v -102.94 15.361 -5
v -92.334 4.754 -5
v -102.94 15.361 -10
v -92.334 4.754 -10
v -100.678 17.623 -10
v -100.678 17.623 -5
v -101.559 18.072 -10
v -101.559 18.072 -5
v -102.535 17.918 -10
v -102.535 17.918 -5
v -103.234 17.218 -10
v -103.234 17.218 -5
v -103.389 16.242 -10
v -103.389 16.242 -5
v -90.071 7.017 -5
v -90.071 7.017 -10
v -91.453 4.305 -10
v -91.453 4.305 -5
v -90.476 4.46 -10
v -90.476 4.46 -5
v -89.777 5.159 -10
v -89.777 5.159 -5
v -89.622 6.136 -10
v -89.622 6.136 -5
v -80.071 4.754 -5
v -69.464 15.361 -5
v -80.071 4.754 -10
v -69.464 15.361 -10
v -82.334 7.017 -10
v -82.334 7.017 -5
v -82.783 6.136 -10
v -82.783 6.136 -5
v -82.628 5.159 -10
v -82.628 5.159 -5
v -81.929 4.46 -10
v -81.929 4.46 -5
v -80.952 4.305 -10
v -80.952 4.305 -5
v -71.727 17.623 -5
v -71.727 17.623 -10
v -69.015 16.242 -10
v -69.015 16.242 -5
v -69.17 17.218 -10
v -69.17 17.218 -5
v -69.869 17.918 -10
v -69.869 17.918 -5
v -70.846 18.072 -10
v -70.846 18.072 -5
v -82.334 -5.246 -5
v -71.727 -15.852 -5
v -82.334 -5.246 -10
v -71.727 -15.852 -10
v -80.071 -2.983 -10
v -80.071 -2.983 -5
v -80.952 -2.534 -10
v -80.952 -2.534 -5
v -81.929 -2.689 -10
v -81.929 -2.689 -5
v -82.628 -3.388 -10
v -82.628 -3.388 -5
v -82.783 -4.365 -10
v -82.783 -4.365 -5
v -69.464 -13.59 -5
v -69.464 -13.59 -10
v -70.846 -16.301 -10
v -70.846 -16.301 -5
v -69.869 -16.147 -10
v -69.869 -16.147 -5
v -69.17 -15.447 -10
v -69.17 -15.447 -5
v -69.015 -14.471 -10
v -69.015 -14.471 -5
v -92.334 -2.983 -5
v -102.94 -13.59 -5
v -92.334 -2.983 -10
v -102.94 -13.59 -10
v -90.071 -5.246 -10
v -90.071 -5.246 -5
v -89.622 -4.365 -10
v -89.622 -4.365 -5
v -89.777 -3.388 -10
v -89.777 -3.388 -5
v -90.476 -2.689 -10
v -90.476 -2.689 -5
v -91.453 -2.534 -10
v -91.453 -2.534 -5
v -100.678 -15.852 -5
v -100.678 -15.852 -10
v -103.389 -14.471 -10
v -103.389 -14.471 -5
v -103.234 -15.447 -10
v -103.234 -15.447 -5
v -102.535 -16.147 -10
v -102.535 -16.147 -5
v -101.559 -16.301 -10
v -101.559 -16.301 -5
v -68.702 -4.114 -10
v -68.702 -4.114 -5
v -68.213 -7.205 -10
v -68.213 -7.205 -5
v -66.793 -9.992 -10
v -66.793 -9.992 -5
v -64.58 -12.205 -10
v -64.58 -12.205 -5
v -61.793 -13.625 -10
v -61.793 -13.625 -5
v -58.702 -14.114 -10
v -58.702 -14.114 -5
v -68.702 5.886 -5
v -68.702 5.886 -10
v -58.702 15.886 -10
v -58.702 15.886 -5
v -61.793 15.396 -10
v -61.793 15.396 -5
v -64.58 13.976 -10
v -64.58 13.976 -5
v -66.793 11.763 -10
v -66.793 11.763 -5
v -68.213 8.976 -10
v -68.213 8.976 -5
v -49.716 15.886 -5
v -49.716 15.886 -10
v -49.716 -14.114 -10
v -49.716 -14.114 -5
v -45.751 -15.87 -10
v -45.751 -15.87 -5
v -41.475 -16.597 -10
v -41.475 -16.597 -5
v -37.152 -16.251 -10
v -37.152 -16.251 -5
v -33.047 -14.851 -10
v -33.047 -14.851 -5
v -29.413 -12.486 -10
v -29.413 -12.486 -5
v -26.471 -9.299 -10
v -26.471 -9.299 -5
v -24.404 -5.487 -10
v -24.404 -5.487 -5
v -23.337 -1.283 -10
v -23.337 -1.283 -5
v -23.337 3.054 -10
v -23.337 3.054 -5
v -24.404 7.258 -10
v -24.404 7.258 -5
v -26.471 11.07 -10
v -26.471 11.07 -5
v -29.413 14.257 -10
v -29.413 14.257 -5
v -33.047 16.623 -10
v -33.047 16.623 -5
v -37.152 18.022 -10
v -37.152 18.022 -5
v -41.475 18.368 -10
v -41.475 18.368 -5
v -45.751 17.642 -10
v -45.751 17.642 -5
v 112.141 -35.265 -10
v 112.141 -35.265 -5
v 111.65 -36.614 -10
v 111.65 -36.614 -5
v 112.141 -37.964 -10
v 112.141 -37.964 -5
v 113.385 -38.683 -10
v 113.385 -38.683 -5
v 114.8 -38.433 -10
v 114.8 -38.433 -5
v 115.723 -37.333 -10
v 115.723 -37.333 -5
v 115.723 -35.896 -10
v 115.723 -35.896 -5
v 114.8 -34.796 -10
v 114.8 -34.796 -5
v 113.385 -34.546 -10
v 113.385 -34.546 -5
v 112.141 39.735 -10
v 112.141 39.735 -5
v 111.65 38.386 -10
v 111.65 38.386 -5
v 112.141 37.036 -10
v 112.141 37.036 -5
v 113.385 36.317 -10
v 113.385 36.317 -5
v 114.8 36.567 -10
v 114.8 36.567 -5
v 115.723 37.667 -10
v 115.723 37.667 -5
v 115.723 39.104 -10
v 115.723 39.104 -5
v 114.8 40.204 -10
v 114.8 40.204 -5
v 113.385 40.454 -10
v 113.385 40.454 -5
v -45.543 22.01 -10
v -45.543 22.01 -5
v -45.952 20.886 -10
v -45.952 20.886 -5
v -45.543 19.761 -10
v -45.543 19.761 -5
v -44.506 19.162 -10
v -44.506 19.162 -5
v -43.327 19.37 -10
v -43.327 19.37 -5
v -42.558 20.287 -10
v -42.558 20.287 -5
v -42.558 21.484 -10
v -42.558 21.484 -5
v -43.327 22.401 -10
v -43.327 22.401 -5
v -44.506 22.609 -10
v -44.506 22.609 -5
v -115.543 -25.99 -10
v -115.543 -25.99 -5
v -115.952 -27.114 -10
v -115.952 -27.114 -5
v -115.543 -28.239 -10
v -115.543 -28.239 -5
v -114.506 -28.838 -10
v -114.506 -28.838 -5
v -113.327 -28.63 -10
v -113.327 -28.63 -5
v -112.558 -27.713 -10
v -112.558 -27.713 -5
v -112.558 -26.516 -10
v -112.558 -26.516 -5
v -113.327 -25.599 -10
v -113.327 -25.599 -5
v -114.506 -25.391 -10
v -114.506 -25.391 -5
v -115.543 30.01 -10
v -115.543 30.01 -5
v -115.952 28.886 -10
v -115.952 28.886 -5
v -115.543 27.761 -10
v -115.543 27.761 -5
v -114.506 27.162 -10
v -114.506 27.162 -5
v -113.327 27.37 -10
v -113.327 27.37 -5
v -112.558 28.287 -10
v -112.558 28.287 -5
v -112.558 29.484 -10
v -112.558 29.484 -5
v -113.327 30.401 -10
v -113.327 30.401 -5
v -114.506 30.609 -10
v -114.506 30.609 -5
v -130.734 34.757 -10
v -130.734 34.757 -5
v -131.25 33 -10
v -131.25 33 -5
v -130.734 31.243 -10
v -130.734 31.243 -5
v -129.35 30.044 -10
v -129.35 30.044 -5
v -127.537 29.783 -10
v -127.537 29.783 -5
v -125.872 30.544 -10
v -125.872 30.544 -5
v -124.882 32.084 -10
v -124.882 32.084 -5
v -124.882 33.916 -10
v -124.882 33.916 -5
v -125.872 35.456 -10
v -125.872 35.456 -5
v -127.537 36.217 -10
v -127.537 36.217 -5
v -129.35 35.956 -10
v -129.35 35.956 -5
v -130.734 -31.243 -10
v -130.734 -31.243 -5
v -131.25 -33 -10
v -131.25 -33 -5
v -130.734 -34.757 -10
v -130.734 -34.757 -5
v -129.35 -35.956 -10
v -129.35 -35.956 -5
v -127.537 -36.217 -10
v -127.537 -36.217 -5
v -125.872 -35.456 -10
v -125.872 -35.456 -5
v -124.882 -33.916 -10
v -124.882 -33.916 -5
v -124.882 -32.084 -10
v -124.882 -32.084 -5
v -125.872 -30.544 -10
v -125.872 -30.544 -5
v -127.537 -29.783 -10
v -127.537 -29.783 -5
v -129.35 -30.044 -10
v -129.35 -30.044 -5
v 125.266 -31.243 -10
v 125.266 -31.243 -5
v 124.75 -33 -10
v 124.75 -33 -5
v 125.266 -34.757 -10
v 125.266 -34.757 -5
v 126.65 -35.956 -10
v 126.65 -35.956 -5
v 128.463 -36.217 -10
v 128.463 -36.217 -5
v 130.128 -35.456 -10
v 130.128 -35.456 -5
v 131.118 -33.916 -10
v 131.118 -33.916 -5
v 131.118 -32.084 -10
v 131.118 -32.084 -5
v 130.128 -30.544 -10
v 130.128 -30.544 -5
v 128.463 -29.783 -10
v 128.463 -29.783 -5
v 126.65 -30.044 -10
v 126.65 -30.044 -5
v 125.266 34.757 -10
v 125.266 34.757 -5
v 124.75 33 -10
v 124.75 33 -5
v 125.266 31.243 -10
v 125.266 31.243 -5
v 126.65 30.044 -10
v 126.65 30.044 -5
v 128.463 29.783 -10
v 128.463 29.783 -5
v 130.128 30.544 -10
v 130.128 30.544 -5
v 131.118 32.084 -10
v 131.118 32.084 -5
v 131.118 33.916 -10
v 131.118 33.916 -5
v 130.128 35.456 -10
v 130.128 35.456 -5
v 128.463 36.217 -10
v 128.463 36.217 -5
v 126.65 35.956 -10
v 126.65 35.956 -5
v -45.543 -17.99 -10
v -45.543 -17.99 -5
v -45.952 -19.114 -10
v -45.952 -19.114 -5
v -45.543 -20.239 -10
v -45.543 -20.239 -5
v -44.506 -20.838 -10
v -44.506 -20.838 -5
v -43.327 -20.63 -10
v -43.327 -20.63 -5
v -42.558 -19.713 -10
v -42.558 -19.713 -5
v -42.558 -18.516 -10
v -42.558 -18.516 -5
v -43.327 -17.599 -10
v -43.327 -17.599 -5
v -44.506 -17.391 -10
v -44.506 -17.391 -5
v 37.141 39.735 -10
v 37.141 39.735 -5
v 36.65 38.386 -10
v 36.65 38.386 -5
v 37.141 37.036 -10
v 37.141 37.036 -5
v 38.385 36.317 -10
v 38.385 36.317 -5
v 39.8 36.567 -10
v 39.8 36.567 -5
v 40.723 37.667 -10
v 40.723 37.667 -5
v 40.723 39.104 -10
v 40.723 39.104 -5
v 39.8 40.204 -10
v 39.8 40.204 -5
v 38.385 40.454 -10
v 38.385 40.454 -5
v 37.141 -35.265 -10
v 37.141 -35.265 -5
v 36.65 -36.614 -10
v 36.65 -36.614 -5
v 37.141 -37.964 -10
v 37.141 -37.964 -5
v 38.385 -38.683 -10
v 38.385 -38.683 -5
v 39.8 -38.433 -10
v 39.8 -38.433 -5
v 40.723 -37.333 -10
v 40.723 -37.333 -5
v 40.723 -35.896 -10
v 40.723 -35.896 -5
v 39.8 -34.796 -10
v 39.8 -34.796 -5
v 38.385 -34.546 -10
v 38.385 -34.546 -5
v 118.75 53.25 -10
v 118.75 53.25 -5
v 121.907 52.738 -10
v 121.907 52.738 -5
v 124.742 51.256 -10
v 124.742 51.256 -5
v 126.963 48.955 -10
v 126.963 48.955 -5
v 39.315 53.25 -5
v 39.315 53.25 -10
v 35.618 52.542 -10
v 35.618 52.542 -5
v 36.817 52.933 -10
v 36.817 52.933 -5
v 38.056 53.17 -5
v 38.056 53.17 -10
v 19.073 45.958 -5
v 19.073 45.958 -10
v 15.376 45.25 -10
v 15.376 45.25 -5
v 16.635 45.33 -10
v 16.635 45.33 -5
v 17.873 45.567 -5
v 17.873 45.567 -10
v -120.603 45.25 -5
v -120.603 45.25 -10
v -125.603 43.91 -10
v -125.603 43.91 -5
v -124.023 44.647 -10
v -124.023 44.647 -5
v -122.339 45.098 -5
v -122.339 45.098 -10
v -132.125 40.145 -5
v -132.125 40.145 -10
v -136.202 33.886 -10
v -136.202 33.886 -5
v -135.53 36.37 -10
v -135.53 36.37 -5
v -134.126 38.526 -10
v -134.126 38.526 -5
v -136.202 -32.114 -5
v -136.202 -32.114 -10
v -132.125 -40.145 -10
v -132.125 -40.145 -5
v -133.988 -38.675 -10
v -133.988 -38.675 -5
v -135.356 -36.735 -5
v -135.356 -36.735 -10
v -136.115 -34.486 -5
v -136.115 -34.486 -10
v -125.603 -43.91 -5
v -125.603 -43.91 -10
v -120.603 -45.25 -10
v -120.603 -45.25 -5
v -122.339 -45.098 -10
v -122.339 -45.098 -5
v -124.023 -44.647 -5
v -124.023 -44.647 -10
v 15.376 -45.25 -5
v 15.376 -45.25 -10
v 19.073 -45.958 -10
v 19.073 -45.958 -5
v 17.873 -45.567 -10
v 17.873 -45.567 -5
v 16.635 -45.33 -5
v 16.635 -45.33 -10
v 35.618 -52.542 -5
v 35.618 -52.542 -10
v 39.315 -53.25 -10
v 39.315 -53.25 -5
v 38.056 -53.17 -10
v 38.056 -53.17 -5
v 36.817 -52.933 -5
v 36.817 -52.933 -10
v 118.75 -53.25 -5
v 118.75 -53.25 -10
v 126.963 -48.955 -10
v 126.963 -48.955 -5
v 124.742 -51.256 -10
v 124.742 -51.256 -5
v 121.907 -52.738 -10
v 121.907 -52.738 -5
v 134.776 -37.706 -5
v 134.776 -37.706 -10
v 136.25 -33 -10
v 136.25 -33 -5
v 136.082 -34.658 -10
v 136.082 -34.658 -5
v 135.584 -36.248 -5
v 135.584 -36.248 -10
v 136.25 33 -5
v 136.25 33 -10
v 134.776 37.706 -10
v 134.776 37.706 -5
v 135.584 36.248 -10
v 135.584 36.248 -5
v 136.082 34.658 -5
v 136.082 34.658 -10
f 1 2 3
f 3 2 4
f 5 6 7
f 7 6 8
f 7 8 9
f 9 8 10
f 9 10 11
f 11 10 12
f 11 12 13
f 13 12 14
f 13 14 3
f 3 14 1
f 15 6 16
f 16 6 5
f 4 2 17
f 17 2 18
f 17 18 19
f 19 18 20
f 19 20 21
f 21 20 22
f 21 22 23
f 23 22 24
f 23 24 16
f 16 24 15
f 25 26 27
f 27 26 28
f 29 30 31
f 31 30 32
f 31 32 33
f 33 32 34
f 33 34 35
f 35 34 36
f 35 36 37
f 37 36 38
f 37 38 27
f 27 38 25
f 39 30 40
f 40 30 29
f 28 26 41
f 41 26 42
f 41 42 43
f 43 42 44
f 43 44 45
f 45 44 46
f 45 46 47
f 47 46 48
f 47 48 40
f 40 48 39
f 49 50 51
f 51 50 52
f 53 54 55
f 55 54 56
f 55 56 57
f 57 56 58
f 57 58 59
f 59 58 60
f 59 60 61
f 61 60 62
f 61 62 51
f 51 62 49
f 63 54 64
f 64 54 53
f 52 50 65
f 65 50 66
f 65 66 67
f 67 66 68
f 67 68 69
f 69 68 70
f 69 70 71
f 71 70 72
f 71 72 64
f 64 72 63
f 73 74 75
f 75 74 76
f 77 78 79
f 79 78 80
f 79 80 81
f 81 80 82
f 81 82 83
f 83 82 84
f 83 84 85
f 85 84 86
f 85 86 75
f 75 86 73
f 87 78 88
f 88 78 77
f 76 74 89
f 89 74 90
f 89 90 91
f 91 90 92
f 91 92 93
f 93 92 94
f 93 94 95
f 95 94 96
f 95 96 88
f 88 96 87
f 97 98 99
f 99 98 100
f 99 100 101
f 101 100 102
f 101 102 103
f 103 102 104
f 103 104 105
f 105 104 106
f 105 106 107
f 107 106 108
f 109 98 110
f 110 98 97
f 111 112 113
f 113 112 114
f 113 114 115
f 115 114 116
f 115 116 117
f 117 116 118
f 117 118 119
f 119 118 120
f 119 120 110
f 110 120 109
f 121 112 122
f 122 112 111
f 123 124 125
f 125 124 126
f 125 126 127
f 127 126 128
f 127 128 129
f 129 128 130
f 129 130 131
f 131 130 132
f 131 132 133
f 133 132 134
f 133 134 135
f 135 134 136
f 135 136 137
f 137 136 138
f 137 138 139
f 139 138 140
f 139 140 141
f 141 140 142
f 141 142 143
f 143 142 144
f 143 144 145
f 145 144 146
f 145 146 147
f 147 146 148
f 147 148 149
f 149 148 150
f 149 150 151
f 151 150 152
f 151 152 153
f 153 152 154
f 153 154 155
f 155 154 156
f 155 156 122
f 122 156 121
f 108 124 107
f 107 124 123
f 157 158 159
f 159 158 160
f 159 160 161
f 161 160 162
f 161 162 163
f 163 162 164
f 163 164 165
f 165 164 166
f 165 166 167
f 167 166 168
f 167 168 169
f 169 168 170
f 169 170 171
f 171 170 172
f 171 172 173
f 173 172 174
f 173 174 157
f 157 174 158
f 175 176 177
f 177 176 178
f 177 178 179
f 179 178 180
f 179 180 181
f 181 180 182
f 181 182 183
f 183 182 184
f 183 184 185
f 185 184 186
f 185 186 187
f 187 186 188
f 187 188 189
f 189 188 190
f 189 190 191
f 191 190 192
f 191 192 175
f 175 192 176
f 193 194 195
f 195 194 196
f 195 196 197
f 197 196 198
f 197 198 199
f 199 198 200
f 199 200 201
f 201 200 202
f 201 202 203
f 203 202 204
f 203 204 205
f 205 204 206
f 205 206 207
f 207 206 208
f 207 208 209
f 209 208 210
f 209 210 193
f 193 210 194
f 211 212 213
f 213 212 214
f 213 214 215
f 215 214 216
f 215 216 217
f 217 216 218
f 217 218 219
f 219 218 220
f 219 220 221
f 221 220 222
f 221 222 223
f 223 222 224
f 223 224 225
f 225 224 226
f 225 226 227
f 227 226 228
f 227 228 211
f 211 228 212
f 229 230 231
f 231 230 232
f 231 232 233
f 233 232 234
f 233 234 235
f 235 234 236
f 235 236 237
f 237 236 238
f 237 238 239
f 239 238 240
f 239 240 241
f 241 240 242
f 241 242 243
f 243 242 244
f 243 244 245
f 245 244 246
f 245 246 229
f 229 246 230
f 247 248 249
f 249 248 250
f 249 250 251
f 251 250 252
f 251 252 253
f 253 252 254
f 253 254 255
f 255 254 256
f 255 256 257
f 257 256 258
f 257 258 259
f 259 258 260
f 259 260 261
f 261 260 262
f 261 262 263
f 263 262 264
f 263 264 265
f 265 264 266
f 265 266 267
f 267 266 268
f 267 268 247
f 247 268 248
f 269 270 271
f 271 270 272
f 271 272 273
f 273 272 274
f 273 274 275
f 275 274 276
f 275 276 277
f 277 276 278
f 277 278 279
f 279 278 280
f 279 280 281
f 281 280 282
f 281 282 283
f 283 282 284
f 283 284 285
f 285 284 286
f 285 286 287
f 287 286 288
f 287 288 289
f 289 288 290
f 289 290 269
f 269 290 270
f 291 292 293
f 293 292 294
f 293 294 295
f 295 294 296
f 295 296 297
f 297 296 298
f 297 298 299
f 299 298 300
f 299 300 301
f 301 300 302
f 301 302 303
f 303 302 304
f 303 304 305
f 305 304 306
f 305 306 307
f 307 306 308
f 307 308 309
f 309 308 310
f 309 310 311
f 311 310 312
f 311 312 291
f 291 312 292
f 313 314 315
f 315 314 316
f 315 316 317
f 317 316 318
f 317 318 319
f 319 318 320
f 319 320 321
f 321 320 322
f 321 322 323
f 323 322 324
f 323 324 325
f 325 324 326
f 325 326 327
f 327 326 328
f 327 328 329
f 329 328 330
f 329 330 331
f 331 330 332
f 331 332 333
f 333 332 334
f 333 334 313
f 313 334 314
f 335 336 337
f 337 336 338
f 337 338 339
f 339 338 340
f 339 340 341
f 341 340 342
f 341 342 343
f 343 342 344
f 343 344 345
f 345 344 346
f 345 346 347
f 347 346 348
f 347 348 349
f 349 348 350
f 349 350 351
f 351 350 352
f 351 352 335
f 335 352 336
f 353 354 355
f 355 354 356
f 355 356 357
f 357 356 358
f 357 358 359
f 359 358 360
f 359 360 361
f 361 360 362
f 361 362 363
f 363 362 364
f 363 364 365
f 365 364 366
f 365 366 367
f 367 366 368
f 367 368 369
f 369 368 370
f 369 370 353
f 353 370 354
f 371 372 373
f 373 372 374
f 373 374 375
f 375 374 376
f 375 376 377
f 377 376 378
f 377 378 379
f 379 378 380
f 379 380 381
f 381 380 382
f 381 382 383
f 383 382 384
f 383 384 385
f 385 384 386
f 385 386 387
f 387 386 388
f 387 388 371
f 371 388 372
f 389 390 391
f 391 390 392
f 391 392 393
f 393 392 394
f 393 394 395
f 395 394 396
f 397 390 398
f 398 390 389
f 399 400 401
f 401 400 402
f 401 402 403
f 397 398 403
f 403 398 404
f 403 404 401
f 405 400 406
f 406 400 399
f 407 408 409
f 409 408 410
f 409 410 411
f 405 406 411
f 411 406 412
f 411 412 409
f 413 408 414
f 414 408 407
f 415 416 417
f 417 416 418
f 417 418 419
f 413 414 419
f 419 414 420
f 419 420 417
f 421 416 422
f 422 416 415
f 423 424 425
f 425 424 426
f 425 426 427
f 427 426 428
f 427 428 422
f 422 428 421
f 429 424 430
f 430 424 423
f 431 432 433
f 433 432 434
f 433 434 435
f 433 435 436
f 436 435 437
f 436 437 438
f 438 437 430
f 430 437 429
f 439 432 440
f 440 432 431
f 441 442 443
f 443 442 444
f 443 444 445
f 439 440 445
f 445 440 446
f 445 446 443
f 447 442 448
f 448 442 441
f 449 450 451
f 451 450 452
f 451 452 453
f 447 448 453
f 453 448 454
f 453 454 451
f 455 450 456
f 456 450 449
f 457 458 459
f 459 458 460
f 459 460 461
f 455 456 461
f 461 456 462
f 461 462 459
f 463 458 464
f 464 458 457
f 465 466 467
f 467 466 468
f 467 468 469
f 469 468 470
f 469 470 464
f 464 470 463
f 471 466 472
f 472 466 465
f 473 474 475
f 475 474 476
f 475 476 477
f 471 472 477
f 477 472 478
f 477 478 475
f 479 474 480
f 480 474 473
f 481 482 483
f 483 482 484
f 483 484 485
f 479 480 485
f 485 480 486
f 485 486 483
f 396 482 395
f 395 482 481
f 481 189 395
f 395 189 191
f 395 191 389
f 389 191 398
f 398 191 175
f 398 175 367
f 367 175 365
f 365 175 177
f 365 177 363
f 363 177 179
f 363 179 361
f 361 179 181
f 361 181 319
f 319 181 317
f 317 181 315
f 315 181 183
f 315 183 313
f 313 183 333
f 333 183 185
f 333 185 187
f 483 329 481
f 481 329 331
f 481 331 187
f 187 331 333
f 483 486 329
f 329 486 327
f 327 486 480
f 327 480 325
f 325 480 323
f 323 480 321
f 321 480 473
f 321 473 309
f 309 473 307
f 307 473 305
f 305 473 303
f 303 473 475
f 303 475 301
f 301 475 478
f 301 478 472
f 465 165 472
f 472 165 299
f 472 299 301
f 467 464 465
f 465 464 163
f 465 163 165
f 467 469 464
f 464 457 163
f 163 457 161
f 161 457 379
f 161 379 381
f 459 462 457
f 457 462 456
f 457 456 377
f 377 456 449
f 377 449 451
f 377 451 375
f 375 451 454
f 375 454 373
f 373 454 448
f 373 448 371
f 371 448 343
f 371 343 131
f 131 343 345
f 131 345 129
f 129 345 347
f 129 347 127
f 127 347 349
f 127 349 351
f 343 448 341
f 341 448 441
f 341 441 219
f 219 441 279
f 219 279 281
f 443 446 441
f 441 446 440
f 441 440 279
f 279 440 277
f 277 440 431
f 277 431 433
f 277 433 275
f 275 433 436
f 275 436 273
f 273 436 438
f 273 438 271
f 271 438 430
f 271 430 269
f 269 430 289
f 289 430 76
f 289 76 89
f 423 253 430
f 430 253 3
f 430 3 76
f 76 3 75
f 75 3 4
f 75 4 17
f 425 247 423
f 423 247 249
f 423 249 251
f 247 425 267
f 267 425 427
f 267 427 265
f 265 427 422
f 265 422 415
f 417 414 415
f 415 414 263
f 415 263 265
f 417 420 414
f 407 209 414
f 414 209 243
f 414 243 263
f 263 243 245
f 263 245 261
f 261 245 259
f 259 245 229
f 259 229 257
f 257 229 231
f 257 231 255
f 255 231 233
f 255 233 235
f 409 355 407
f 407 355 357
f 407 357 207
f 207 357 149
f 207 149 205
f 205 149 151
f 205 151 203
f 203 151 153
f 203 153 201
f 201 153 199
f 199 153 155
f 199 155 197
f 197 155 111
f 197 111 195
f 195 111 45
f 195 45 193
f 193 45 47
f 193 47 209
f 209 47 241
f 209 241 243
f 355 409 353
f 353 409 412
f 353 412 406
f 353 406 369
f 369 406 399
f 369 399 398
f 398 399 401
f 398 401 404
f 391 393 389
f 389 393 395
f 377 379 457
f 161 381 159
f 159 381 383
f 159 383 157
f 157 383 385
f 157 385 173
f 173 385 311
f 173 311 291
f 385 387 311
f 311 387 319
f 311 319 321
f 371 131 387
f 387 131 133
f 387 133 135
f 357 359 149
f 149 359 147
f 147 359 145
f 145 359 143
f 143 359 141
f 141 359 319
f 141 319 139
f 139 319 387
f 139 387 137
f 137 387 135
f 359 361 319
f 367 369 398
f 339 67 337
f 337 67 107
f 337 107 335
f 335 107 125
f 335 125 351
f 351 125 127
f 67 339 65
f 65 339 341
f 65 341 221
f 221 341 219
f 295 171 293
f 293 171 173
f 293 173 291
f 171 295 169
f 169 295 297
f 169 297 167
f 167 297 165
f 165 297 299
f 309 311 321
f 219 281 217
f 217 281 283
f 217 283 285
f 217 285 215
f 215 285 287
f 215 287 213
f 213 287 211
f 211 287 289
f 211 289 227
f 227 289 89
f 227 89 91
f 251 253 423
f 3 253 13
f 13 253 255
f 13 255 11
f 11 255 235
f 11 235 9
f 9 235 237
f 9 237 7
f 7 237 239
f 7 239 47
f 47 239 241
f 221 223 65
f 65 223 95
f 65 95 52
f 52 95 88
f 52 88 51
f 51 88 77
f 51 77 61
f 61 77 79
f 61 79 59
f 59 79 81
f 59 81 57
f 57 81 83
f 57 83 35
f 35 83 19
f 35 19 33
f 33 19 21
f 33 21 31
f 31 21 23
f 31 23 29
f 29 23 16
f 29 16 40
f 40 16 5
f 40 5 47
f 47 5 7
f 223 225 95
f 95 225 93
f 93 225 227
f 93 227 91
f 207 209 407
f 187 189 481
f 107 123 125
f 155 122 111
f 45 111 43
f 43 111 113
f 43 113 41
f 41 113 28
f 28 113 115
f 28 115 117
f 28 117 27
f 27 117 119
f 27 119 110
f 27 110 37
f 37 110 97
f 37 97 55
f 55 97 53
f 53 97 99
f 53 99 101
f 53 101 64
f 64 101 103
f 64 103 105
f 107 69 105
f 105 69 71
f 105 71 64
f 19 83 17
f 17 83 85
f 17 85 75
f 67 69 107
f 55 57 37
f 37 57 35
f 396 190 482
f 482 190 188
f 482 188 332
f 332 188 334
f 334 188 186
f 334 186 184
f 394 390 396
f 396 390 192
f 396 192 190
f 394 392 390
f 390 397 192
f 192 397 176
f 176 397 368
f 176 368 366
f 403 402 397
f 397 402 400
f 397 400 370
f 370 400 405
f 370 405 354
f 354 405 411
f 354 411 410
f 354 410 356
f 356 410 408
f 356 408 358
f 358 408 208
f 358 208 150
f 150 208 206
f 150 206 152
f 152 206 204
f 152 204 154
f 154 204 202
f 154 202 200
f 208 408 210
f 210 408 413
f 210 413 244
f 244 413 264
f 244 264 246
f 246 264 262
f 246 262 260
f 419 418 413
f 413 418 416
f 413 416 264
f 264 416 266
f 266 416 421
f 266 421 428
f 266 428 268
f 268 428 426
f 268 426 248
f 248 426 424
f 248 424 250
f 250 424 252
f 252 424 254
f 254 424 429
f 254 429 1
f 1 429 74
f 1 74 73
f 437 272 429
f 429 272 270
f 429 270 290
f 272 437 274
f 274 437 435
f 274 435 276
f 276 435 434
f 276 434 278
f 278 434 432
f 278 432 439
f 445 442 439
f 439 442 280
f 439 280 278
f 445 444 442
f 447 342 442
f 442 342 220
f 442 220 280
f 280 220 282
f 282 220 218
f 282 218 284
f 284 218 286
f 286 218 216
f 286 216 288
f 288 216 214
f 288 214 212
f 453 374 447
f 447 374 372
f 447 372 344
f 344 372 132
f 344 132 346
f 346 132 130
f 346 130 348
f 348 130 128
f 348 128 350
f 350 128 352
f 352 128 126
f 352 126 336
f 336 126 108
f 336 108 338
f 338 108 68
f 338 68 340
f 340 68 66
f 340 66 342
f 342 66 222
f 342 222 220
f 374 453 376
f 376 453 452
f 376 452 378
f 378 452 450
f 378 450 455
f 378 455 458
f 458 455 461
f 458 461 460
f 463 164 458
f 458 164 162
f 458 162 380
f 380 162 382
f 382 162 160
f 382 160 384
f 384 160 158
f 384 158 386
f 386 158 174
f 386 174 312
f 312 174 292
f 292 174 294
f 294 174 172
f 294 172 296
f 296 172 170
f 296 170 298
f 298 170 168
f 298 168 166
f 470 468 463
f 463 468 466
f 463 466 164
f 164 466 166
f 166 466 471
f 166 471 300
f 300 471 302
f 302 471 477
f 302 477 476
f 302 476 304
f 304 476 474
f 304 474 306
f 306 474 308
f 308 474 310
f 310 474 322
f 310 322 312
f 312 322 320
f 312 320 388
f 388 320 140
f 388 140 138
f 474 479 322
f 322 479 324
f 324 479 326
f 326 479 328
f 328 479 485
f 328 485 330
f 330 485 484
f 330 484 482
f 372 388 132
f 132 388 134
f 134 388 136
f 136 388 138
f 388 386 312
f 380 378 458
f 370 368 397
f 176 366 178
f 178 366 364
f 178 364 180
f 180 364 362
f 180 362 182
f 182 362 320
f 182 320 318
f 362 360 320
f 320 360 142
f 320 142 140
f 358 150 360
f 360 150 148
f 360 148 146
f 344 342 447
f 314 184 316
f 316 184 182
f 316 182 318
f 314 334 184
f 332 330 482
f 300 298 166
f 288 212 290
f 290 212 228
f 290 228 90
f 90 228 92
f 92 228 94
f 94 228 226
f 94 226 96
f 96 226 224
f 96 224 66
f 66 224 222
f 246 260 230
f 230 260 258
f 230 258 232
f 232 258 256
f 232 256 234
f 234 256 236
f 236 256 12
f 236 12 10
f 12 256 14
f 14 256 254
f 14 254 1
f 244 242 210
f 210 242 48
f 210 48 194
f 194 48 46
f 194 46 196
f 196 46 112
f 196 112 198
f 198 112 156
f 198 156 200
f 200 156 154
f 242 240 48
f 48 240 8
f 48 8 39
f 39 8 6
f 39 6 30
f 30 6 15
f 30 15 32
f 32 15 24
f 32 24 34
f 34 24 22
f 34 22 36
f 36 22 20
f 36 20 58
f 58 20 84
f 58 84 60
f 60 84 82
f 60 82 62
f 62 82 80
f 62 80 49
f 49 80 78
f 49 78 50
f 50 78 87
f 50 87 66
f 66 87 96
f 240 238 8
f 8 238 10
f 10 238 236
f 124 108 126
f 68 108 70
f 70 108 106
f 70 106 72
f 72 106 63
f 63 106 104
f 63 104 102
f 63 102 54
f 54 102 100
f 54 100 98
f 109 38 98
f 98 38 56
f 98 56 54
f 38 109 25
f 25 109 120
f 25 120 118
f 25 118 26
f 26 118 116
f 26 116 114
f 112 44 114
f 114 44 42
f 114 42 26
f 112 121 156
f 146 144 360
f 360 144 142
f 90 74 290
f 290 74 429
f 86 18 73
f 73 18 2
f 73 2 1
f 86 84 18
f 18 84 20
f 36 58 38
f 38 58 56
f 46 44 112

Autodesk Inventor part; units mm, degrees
ref_plane "YZ Plane" through (0, 0, 0) normal (1, 0, 0) x (0, 1, 0)
ref_plane "XZ Plane" through (0, 0, 0) normal (0, 1, 0) x (-1, 0, 0)
ref_plane "XY Plane" through (0, 0, 0) normal (0, 0, 1) x (1, 0, 0)
ref_plane "作業平面1" through (15.3757, 45.25, -5) normal (0, 0, -1) x (-1, 0, 0)
sketch "Base_plate" plane through (15.3757, 45.25, -5) normal (0, 0, -1) x (-1, 0, 0)
  circle A0 centre (-112.6243, -12.25) radius 3.25
  circle A1 centre (-112.6243, -78.25) radius 3.25
  circle A2 centre (143.3757, -78.25) radius 3.25
  circle A3 centre (143.3757, -12.25) radius 3.25
  line L0 (151.578, -11.3644) -> (151.578, -77.3644)
  arc A4 (151.578, -11.3644) -> (147.5007, -5.1053) centre (143.3757, -12.25) ccw
  line L1 (147.5007, -5.1053) -> (140.9785, -1.3397)
  arc A5 (140.9785, -1.3397) -> (135.9785, 0) centre (135.9785, -10) ccw
  line L2 (135.9785, 0) -> (0, 0)
  line L3 (-20.2421, 7.2915) -> (-3.697, 0.7085)
  line L4 (-23.9391, 8) -> (-103.3743, 8)
  line L5 (0, 0) -> (135.9785, 0)
  arc A6 (140.9785, -1.3397) -> (135.9785, 0) centre (135.9785, -10) ccw
  line L6 (140.9785, -1.3397) -> (147.5007, -5.1053)
  arc A7 (151.578, -11.3644) -> (147.5007, -5.1053) centre (143.3757, -12.25) ccw
  line L7 (151.578, -11.3644) -> (151.578, -77.3644)
  arc A8 (147.5007, -85.3947) -> (151.578, -77.3644) centre (143.3757, -78.25) ccw
  arc A9 (-103.3743, 8) -> (-111.5876, 3.7046) centre (-103.3743, -2) ccw
  line L8 (-103.3743, 8) -> (-23.9391, 8)
  arc A10 (-20.2421, 7.2915) -> (-23.9391, 8) centre (-23.9391, -2) ccw
  line L9 (-20.2421, 7.2915) -> (-3.697, 0.7085)
  arc A11 (-3.697, 0.7085) -> (0, 0) centre (0, 10) ccw
  circle A12 centre (-112.6243, -12.25) radius 3.25
  circle A13 centre (143.3757, -12.25) radius 3.25
  circle A14 centre (143.3757, -78.25) radius 3.25
  circle A15 centre (-112.6243, -78.25) radius 3.25
  line L10 (135.9785, 0) -> (0, 0)
  arc A16 (140.9785, -1.3397) -> (135.9785, 0) centre (135.9785, -10) ccw
  line L11 (147.5007, -5.1053) -> (140.9785, -1.3397)
  arc A17 (151.578, -11.3644) -> (147.5007, -5.1053) centre (143.3757, -12.25) ccw
  line L12 (151.6257, -11.3644) -> (151.6257, -77.3644)
  arc A18 (147.5007, -85.3947) -> (151.578, -77.3644) centre (143.3757, -78.25) ccw
  line L13 (147.5007, -85.3947) -> (140.9785, -89.1603)
  arc A19 (135.9785, -90.5) -> (140.9785, -89.1603) centre (135.9785, -80.5) ccw
  line L14 (135.9785, -90.5) -> (0, -90.5)
  arc A20 (0, -90.5) -> (-3.697, -91.2085) centre (0, -100.5) ccw
  line L15 (-20.2421, -97.7915) -> (-3.697, -91.2085)
  arc A21 (-23.9391, -98.5) -> (-20.2421, -97.7915) centre (-23.9391, -88.5) ccw
  line L16 (-23.9391, -98.5) -> (-103.3743, -98.5)
  arc A22 (-111.5876, -94.2046) -> (-103.3743, -98.5) centre (-103.3743, -88.5) ccw
  line L17 (-111.5876, -94.2046) -> (-119.4003, -82.9563)
  arc A23 (-120.8743, -78.25) -> (-119.4003, -82.9563) centre (-112.6243, -78.25) ccw
  line L18 (-120.8743, -12.25) -> (-120.8743, -78.25)
  arc A24 (-119.4003, -7.5437) -> (-120.8743, -12.25) centre (-112.6243, -12.25) ccw
  line L19 (-111.5876, 3.7046) -> (-119.4003, -7.5437)
  line L20 (-23.9391, 8) -> (-103.3743, 8)
  arc A25 (-20.2421, 7.2915) -> (-23.9391, 8) centre (-23.9391, -2) ccw
  line L21 (-20.2421, 7.2915) -> (-3.697, 0.7085)
  arc A26 (-3.697, 0.7085) -> (0, 0) centre (0, 10) ccw
  line L22 (101.578, 7.8213) -> (101.578, -100.5) construction
  line L23 (151.6257, -44.3644) -> (-114.4175, -44.3644) construction
  circle A27 centre (56.078, -44.3644) radius 17.5 construction
  line L24 (129.578, -5.1053) -> (129.578, -82.9563) construction
  circle A28 centre (129.578, -16.3644) radius 1.75
  circle A29 centre (129.578, -72.3644) radius 1.75
  line L25 (59.578, -19.3302) -> (59.578, -75) construction
  circle A30 centre (59.578, -24.3644) radius 1.75
  circle A31 centre (59.578, -64.3644) radius 1.75
  circle A32 centre (101.578, -44.3644) radius 14.75 construction
  line L26 (101.578, -44.3644) -> (118.6401, -27.3023) construction
  line L27 (101.578, -44.3644) -> (125.7075, -44.3644) construction
  line L28 (106.5779, -39.3645) -> (117.1845, -28.7579) construction
  line L29 (107.7093, -40.4959) -> (118.3159, -29.8893)
  line L30 (116.0532, -27.6265) -> (105.4466, -38.2331)
  arc A33 (105.4466, -38.2331) -> (107.7093, -40.4959) centre (106.5779, -39.3645) ccw
  arc A34 (118.3159, -29.8893) -> (116.0532, -27.6265) centre (117.1845, -28.7579) ccw
  line L31 (84.8401, -29.8893) -> (95.4467, -40.4959)
  arc A35 (87.1028, -27.6265) -> (84.8401, -29.8893) centre (85.9714, -28.7579) ccw
  line L32 (97.7094, -38.2331) -> (87.1028, -27.6265)
  arc A36 (95.4467, -40.4959) -> (97.7094, -38.2331) centre (96.578, -39.3645) ccw
  line L33 (87.1028, -61.1024) -> (97.7094, -50.4958)
  arc A37 (84.8401, -58.8396) -> (87.1028, -61.1024) centre (85.9714, -59.971) ccw
  line L34 (95.4467, -48.233) -> (84.8401, -58.8396)
  arc A38 (97.7094, -50.4958) -> (95.4467, -48.233) centre (96.578, -49.3644) ccw
  line L35 (118.3159, -58.8396) -> (107.7093, -48.233)
  arc A39 (116.0532, -61.1024) -> (118.3159, -58.8396) centre (117.1845, -59.971) ccw
  line L36 (105.4466, -50.4958) -> (116.0532, -61.1024)
  arc A40 (107.7093, -48.233) -> (105.4466, -50.4958) centre (106.5779, -49.3644) ccw
  line L37 (65.0919, -29.3644) -> (74.078, -29.3644)
  line L38 (84.078, -39.3644) -> (84.078, -49.3644)
  line L39 (74.078, -59.3644) -> (65.0919, -59.3644)
  line L40 (65.0919, -59.3644) -> (65.0919, -29.3644) construction
  arc A41 (84.078, -39.3644) -> (74.078, -29.3644) centre (74.078, -39.3644) ccw
  arc A42 (74.078, -59.3644) -> (84.078, -49.3644) centre (74.078, -49.3644) ccw
  arc A43 (65.0919, -29.3644) -> (65.0919, -59.3644) centre (56.078, -44.3644) ccw
  line L41 (-60.8743, -12.5765) -> (-60.8743, -79.1684) construction
  line L42 (-98.3743, -6.8644) -> (-23.3743, -6.8644) construction
  line L43 (-23.3743, -6.8644) -> (-23.3743, -81.8644) construction
  line L44 (-23.3743, -81.8644) -> (-98.3743, -81.8644) construction
  line L45 (-98.3743, -81.8644) -> (-98.3743, -6.8644) construction
  line L46 (-98.3743, -6.8644) -> (-23.3743, -81.8644) construction
  line L47 (-23.3743, -6.8644) -> (-98.3743, -81.8644) construction
  circle A44 centre (-98.3743, -6.8644) radius 2.1
  circle A45 centre (-23.3743, -6.8644) radius 2.1
  circle A46 centre (-98.3743, -81.8644) radius 2.1
  circle A47 centre (-23.3743, -81.8644) radius 2.1
  point P0 (144.2396, -3.2225)
  point P1 (144.2396, -87.2775)
  point P2 (111.8812, -34.0612)
  point P3 (91.2747, -34.0612)
  point P4 (91.2747, -54.6677)
  point P5 (111.8812, -54.6677)
  point P6 (-60.8743, -44.3644)
  point P7 (-60.8743, -44.3644)
  dimension "d20" = 50
  dimension "d21" = 45.5
  dimension "d22" = 35
  dimension "d23" = 28
  dimension "d24" = 3.5
  dimension "d25" = 3.5
  dimension "d26" = 28
  dimension "d27" = 28
  dimension "d28" = 42
  dimension "d29" = 3.5
  dimension "d30" = 3.5
  dimension "d31" = 20
  dimension "d32" = 20
  dimension "d40" = 29.5
  dimension "d43" = 45
  dimension "d44" = 3.2
  dimension "d45" = 7.071
  dimension "d46" = 15
  dimension "d49" = 360
  dimension "d51" = 15
  dimension "d52" = 15
  dimension "d53" = 28
  dimension "d54" = 10
  dimension "d65" = 60
  dimension "d66" = 75
  dimension "d67" = 75
  dimension "d68" = 4.2
  dimension "d69" = 4.2
  dimension "d70" = 4.2
  dimension "d71" = 4.2
sketch "RPLidarA1M8" plane through (15.3757, 45.25, -5) normal (0, 0, -1) x (-1, 0, 0)
  line L0 (59.578, -45.9195) -> (59.578, -117.33) construction
  circle A0 centre (59.578, -24.3644) radius 1.5
  circle A1 centre (59.578, -64.3644) radius 1.5
  line L1 (4.0197, -44.3644) -> (199.1363, -44.3644) construction
  circle A2 centre (129.578, -16.3644) radius 1.5
  line L2 (101.578, -2.732) -> (101.578, -85.9969) construction
  circle A3 centre (101.578, -44.3644) radius 35.14
  line L3 (59.578, -6.852) -> (59.578, -81.8768) construction
  circle A4 centre (129.578, -72.3644) radius 1.5
  line L4 (129.578, -10.2254) -> (129.578, -77.75) construction
  circle A5 centre (56.078, -44.3644) radius 10
  circle A6 centre (56.078, -44.3644) radius 16
  line L5 (151.6257, -44.3644) -> (-114.4175, -44.3644) construction
  line L6 (101.578, 7.8213) -> (101.578, -100.5) construction
  point P0 (15.3757, -88.1377)
  point P1 (59.578, -44.3644)
  point P2 (129.578, -43.9877)
  dimension "d1" = 3
  dimension "d2" = 3
  dimension "d5" = 20
  dimension "d6" = 3
  dimension "d10" = 70.28
  dimension "d11" = 42
  dimension "d12" = 40
  dimension "d13" = 3
  dimension "d14" = 28
  dimension "d15" = 28
  dimension "d16" = 28
  dimension "d17" = 20
  dimension "d18" = 45.5
  dimension "d19" = 32
sketch "RPLidarA2M6" plane through (15.3757, 45.25, -5) normal (0, 0, -1) x (-1, 0, 0)
  line L0 (101.578, 7.8213) -> (101.578, -100.5) construction
  line L1 (151.6257, -44.3644) -> (-114.4175, -44.3644) construction
  circle A0 centre (101.578, -44.3644) radius 14.75 construction
  circle A1 centre (112.0078, -33.9346) radius 1.5
  line L2 (112.0078, -33.9346) -> (101.578, -44.3644) construction
  circle A2 centre (91.1482, -33.9346) radius 1.5
  circle A3 centre (91.1482, -54.7943) radius 1.5
  circle A4 centre (112.0078, -54.7943) radius 1.5
  dimension "d33" = 29.5
  dimension "d34" = 3
  dimension "d35" = 45
  dimension "d38" = 360
extrude "押し出し1" add sketch "Base_plate" along normal blind 5
